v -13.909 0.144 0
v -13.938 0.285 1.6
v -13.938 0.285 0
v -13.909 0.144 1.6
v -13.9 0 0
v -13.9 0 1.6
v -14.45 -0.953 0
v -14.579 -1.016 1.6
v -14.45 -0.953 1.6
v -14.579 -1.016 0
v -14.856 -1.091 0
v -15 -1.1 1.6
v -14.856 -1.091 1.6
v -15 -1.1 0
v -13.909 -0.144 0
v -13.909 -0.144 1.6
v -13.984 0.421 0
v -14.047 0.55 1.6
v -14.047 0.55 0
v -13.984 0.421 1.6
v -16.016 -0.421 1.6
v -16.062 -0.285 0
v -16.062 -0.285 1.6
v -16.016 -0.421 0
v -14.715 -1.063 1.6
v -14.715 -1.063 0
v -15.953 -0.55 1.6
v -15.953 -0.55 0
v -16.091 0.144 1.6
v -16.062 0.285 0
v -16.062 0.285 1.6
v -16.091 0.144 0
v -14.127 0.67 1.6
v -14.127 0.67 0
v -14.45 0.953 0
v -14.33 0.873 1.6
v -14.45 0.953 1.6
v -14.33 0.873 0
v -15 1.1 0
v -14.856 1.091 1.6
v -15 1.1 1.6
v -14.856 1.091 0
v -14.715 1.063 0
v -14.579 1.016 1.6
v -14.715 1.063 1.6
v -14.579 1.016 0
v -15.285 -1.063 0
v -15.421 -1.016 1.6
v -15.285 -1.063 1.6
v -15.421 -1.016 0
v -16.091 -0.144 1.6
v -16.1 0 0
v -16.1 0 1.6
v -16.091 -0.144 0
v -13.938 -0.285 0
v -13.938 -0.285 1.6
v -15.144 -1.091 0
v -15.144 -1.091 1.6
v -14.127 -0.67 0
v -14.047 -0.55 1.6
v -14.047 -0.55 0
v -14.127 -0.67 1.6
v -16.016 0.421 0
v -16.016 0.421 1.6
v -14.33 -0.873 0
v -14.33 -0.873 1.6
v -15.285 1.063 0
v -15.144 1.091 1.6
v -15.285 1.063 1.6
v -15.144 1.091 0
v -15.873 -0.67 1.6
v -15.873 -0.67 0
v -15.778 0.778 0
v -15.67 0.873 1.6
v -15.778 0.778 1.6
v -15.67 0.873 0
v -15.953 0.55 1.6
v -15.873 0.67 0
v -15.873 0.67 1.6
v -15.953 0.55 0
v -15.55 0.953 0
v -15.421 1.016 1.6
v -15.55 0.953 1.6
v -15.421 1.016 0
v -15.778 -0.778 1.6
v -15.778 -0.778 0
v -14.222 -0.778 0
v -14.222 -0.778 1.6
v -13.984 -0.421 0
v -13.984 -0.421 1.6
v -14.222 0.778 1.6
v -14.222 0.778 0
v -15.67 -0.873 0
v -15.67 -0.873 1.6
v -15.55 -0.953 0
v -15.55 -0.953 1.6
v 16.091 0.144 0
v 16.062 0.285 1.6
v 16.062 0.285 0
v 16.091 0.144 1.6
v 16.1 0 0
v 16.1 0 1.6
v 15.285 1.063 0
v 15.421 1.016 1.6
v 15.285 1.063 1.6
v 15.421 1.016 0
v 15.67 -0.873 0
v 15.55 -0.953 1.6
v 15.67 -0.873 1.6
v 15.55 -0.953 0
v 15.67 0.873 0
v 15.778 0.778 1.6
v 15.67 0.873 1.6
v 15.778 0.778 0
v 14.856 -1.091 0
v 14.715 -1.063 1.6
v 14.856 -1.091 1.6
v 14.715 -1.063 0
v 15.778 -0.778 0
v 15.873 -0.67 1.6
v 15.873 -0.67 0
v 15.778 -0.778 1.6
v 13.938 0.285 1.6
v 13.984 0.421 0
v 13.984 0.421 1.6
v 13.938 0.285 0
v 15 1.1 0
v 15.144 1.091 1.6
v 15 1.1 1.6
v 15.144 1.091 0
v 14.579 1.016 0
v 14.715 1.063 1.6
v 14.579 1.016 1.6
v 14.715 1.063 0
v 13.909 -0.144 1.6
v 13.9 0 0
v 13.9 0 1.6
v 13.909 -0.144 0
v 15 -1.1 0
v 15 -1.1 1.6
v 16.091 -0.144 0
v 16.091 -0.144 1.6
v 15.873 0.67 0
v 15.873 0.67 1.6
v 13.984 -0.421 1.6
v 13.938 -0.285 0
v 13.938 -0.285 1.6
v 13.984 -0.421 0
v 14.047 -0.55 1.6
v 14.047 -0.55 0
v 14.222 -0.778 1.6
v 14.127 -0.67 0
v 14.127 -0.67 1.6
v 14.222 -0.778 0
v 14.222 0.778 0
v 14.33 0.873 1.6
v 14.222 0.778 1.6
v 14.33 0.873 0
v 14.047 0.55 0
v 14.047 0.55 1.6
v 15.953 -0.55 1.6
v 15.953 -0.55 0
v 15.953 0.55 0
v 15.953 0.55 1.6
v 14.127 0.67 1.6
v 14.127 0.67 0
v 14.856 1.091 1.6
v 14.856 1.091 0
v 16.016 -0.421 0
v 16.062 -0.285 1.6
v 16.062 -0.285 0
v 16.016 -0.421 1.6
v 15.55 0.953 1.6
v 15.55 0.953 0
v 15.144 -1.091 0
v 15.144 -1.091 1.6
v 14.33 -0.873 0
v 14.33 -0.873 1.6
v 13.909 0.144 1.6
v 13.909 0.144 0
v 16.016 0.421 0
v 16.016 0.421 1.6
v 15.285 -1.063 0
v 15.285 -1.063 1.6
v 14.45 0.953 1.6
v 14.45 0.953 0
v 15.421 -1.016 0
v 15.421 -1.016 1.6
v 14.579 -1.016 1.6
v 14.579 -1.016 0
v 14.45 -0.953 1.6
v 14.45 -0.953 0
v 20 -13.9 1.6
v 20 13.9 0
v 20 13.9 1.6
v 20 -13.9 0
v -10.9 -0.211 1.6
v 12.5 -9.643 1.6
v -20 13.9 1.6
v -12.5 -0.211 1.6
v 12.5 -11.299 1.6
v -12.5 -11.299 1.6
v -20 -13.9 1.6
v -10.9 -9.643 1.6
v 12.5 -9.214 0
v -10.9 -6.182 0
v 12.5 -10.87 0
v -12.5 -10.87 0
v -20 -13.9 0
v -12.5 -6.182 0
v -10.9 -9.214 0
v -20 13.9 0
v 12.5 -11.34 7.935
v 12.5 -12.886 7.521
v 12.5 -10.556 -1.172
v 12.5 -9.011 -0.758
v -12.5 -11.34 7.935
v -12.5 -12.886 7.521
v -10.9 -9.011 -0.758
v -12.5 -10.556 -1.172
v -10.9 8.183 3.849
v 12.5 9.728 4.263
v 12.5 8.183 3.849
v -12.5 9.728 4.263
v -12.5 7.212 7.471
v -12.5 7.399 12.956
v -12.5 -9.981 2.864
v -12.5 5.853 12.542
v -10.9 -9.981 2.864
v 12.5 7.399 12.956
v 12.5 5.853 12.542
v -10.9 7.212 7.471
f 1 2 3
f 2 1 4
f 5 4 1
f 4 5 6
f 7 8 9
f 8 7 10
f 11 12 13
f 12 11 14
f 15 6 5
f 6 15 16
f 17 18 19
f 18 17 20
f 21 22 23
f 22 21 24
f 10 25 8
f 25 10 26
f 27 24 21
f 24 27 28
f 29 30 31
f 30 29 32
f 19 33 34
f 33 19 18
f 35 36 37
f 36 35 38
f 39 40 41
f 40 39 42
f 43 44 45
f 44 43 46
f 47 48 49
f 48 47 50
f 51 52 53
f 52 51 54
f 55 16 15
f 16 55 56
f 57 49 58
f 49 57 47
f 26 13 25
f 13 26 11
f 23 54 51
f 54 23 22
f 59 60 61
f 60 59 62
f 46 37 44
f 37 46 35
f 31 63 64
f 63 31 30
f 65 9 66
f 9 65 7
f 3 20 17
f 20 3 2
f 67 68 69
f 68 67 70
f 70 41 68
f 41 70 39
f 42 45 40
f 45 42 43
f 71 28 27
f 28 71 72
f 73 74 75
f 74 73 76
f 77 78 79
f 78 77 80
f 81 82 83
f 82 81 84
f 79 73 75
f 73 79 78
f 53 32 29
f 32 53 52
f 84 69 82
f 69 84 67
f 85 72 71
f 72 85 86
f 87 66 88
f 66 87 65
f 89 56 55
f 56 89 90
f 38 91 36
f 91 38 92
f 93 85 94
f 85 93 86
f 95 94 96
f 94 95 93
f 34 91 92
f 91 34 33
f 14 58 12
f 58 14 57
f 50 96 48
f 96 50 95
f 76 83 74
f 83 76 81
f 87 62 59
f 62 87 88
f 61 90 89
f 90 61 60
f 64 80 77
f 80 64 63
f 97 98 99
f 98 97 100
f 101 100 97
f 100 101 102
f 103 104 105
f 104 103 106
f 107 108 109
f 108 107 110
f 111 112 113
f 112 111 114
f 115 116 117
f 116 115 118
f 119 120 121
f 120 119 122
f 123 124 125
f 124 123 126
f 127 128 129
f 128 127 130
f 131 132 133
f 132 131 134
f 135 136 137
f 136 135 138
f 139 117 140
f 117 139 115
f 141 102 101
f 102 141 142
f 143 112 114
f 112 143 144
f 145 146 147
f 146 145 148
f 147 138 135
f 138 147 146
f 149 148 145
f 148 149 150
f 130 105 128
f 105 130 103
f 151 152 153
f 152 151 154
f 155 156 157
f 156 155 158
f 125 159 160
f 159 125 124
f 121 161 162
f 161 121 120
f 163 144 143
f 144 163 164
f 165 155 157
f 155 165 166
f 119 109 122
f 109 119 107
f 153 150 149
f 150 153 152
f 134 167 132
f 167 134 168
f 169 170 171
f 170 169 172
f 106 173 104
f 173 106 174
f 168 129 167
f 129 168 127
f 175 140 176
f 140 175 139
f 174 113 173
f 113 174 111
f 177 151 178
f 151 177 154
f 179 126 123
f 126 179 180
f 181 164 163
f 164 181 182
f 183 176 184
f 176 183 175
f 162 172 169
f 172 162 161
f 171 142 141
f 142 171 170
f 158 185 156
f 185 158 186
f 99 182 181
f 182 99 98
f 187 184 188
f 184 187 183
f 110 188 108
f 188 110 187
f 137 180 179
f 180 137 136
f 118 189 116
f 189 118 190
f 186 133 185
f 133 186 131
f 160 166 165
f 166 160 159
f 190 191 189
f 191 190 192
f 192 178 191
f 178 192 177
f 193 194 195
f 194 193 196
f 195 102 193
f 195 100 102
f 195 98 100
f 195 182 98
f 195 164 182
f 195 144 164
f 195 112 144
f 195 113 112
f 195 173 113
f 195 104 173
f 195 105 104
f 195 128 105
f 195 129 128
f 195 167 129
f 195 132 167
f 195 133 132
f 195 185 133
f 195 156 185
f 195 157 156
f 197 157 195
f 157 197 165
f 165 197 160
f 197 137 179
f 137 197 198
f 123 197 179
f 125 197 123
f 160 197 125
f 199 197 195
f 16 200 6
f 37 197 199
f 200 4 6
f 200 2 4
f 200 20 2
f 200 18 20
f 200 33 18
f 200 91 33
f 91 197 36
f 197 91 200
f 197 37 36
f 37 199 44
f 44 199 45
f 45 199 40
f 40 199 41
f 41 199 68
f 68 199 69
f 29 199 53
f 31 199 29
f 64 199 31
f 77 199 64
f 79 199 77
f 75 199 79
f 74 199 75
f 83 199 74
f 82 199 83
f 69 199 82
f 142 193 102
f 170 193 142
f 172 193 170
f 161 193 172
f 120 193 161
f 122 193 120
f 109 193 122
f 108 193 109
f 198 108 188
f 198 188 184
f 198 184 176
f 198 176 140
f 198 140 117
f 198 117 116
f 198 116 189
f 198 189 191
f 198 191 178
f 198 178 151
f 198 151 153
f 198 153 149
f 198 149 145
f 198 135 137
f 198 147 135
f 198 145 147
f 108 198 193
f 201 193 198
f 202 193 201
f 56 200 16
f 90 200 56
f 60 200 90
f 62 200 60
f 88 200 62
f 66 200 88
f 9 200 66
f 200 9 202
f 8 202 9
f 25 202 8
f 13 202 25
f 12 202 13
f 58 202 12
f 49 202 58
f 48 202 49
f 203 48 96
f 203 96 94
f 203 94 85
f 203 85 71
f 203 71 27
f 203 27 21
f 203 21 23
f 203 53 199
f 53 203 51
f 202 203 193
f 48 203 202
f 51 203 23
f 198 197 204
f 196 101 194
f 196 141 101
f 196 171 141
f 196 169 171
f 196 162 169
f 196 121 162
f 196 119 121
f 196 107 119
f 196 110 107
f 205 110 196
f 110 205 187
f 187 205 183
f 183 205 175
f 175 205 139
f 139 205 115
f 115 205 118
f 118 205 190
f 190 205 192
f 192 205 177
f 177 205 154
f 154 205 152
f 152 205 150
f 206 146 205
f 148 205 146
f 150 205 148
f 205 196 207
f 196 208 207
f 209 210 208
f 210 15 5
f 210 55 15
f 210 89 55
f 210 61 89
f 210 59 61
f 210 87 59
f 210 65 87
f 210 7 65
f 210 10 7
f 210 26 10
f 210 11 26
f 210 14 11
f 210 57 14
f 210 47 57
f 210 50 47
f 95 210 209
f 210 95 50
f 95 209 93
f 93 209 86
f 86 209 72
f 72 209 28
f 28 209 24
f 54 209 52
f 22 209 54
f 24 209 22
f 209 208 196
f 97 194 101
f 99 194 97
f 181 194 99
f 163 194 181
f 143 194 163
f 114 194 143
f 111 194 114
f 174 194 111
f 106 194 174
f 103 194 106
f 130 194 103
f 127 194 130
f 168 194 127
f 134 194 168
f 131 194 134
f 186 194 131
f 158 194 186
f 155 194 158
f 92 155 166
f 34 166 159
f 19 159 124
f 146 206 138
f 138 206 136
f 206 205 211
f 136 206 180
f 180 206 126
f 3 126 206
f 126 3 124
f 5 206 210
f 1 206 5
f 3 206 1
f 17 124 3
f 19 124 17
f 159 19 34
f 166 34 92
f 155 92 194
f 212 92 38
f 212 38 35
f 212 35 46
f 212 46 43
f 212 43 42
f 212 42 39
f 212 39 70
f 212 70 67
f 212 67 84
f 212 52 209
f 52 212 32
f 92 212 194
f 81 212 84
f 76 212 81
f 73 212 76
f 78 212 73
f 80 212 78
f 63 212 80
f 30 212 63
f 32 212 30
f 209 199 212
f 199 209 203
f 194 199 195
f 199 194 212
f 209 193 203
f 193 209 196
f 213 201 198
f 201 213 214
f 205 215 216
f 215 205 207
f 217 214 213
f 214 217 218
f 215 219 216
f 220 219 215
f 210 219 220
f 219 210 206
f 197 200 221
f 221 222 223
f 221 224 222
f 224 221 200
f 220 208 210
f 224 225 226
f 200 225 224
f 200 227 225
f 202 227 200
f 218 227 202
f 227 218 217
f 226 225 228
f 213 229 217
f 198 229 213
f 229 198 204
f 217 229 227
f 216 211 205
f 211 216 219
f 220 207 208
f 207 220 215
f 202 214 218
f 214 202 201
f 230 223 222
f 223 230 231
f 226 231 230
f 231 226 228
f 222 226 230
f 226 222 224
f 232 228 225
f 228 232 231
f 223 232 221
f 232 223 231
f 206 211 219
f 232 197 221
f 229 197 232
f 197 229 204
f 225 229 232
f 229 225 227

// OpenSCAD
// IceDrone V1 - camera / XIAO Sense cradle
// Open cradle, 15 degree camera attitude, per docs/03_MECHANICAL.md.
// Sized for the XIAO ESP32-S3 Sense stack (~21 x 17.8 mm footprint,
// ~15 mm stack height incl. camera module). Intentionally open for cooling.

board_length   = 21;
board_width    = 17.8;
stack_height   = 15;
wall_thickness = 1.6;
tilt_deg       = 15;
mount_hole_d   = 2.2;
mount_pattern  = 30;
$fn            = 48;

module base_plate() {
    difference() {
        translate([-mount_pattern / 2 - 5, -board_width / 2 - 5, 0])
            cube([mount_pattern + 10, board_width + 10, wall_thickness]);
        for (x = [-mount_pattern / 2, mount_pattern / 2])
            translate([x, 0, -0.1])
                cylinder(d = mount_hole_d, h = wall_thickness + 0.2);
    }
}

module side_rail() {
    // open side rail that clips the board edge and holds the tilt angle
    cube([board_length + 4, wall_thickness, stack_height * 0.6]);
}

module camera_cradle_15deg() {
    union() {
        base_plate();
        rotate([tilt_deg, 0, 0]) {
            translate([-(board_length + 4) / 2, -board_width / 2 - wall_thickness, wall_thickness])
                side_rail();
            translate([-(board_length + 4) / 2, board_width / 2, wall_thickness])
                side_rail();
            // open front lip, cooling gap left in the middle on purpose
            translate([-(board_length + 4) / 2, -board_width / 2 - wall_thickness, wall_thickness])
                cube([wall_thickness, board_width + 2 * wall_thickness, stack_height * 0.25]);
        }
    }
}

camera_cradle_15deg();
